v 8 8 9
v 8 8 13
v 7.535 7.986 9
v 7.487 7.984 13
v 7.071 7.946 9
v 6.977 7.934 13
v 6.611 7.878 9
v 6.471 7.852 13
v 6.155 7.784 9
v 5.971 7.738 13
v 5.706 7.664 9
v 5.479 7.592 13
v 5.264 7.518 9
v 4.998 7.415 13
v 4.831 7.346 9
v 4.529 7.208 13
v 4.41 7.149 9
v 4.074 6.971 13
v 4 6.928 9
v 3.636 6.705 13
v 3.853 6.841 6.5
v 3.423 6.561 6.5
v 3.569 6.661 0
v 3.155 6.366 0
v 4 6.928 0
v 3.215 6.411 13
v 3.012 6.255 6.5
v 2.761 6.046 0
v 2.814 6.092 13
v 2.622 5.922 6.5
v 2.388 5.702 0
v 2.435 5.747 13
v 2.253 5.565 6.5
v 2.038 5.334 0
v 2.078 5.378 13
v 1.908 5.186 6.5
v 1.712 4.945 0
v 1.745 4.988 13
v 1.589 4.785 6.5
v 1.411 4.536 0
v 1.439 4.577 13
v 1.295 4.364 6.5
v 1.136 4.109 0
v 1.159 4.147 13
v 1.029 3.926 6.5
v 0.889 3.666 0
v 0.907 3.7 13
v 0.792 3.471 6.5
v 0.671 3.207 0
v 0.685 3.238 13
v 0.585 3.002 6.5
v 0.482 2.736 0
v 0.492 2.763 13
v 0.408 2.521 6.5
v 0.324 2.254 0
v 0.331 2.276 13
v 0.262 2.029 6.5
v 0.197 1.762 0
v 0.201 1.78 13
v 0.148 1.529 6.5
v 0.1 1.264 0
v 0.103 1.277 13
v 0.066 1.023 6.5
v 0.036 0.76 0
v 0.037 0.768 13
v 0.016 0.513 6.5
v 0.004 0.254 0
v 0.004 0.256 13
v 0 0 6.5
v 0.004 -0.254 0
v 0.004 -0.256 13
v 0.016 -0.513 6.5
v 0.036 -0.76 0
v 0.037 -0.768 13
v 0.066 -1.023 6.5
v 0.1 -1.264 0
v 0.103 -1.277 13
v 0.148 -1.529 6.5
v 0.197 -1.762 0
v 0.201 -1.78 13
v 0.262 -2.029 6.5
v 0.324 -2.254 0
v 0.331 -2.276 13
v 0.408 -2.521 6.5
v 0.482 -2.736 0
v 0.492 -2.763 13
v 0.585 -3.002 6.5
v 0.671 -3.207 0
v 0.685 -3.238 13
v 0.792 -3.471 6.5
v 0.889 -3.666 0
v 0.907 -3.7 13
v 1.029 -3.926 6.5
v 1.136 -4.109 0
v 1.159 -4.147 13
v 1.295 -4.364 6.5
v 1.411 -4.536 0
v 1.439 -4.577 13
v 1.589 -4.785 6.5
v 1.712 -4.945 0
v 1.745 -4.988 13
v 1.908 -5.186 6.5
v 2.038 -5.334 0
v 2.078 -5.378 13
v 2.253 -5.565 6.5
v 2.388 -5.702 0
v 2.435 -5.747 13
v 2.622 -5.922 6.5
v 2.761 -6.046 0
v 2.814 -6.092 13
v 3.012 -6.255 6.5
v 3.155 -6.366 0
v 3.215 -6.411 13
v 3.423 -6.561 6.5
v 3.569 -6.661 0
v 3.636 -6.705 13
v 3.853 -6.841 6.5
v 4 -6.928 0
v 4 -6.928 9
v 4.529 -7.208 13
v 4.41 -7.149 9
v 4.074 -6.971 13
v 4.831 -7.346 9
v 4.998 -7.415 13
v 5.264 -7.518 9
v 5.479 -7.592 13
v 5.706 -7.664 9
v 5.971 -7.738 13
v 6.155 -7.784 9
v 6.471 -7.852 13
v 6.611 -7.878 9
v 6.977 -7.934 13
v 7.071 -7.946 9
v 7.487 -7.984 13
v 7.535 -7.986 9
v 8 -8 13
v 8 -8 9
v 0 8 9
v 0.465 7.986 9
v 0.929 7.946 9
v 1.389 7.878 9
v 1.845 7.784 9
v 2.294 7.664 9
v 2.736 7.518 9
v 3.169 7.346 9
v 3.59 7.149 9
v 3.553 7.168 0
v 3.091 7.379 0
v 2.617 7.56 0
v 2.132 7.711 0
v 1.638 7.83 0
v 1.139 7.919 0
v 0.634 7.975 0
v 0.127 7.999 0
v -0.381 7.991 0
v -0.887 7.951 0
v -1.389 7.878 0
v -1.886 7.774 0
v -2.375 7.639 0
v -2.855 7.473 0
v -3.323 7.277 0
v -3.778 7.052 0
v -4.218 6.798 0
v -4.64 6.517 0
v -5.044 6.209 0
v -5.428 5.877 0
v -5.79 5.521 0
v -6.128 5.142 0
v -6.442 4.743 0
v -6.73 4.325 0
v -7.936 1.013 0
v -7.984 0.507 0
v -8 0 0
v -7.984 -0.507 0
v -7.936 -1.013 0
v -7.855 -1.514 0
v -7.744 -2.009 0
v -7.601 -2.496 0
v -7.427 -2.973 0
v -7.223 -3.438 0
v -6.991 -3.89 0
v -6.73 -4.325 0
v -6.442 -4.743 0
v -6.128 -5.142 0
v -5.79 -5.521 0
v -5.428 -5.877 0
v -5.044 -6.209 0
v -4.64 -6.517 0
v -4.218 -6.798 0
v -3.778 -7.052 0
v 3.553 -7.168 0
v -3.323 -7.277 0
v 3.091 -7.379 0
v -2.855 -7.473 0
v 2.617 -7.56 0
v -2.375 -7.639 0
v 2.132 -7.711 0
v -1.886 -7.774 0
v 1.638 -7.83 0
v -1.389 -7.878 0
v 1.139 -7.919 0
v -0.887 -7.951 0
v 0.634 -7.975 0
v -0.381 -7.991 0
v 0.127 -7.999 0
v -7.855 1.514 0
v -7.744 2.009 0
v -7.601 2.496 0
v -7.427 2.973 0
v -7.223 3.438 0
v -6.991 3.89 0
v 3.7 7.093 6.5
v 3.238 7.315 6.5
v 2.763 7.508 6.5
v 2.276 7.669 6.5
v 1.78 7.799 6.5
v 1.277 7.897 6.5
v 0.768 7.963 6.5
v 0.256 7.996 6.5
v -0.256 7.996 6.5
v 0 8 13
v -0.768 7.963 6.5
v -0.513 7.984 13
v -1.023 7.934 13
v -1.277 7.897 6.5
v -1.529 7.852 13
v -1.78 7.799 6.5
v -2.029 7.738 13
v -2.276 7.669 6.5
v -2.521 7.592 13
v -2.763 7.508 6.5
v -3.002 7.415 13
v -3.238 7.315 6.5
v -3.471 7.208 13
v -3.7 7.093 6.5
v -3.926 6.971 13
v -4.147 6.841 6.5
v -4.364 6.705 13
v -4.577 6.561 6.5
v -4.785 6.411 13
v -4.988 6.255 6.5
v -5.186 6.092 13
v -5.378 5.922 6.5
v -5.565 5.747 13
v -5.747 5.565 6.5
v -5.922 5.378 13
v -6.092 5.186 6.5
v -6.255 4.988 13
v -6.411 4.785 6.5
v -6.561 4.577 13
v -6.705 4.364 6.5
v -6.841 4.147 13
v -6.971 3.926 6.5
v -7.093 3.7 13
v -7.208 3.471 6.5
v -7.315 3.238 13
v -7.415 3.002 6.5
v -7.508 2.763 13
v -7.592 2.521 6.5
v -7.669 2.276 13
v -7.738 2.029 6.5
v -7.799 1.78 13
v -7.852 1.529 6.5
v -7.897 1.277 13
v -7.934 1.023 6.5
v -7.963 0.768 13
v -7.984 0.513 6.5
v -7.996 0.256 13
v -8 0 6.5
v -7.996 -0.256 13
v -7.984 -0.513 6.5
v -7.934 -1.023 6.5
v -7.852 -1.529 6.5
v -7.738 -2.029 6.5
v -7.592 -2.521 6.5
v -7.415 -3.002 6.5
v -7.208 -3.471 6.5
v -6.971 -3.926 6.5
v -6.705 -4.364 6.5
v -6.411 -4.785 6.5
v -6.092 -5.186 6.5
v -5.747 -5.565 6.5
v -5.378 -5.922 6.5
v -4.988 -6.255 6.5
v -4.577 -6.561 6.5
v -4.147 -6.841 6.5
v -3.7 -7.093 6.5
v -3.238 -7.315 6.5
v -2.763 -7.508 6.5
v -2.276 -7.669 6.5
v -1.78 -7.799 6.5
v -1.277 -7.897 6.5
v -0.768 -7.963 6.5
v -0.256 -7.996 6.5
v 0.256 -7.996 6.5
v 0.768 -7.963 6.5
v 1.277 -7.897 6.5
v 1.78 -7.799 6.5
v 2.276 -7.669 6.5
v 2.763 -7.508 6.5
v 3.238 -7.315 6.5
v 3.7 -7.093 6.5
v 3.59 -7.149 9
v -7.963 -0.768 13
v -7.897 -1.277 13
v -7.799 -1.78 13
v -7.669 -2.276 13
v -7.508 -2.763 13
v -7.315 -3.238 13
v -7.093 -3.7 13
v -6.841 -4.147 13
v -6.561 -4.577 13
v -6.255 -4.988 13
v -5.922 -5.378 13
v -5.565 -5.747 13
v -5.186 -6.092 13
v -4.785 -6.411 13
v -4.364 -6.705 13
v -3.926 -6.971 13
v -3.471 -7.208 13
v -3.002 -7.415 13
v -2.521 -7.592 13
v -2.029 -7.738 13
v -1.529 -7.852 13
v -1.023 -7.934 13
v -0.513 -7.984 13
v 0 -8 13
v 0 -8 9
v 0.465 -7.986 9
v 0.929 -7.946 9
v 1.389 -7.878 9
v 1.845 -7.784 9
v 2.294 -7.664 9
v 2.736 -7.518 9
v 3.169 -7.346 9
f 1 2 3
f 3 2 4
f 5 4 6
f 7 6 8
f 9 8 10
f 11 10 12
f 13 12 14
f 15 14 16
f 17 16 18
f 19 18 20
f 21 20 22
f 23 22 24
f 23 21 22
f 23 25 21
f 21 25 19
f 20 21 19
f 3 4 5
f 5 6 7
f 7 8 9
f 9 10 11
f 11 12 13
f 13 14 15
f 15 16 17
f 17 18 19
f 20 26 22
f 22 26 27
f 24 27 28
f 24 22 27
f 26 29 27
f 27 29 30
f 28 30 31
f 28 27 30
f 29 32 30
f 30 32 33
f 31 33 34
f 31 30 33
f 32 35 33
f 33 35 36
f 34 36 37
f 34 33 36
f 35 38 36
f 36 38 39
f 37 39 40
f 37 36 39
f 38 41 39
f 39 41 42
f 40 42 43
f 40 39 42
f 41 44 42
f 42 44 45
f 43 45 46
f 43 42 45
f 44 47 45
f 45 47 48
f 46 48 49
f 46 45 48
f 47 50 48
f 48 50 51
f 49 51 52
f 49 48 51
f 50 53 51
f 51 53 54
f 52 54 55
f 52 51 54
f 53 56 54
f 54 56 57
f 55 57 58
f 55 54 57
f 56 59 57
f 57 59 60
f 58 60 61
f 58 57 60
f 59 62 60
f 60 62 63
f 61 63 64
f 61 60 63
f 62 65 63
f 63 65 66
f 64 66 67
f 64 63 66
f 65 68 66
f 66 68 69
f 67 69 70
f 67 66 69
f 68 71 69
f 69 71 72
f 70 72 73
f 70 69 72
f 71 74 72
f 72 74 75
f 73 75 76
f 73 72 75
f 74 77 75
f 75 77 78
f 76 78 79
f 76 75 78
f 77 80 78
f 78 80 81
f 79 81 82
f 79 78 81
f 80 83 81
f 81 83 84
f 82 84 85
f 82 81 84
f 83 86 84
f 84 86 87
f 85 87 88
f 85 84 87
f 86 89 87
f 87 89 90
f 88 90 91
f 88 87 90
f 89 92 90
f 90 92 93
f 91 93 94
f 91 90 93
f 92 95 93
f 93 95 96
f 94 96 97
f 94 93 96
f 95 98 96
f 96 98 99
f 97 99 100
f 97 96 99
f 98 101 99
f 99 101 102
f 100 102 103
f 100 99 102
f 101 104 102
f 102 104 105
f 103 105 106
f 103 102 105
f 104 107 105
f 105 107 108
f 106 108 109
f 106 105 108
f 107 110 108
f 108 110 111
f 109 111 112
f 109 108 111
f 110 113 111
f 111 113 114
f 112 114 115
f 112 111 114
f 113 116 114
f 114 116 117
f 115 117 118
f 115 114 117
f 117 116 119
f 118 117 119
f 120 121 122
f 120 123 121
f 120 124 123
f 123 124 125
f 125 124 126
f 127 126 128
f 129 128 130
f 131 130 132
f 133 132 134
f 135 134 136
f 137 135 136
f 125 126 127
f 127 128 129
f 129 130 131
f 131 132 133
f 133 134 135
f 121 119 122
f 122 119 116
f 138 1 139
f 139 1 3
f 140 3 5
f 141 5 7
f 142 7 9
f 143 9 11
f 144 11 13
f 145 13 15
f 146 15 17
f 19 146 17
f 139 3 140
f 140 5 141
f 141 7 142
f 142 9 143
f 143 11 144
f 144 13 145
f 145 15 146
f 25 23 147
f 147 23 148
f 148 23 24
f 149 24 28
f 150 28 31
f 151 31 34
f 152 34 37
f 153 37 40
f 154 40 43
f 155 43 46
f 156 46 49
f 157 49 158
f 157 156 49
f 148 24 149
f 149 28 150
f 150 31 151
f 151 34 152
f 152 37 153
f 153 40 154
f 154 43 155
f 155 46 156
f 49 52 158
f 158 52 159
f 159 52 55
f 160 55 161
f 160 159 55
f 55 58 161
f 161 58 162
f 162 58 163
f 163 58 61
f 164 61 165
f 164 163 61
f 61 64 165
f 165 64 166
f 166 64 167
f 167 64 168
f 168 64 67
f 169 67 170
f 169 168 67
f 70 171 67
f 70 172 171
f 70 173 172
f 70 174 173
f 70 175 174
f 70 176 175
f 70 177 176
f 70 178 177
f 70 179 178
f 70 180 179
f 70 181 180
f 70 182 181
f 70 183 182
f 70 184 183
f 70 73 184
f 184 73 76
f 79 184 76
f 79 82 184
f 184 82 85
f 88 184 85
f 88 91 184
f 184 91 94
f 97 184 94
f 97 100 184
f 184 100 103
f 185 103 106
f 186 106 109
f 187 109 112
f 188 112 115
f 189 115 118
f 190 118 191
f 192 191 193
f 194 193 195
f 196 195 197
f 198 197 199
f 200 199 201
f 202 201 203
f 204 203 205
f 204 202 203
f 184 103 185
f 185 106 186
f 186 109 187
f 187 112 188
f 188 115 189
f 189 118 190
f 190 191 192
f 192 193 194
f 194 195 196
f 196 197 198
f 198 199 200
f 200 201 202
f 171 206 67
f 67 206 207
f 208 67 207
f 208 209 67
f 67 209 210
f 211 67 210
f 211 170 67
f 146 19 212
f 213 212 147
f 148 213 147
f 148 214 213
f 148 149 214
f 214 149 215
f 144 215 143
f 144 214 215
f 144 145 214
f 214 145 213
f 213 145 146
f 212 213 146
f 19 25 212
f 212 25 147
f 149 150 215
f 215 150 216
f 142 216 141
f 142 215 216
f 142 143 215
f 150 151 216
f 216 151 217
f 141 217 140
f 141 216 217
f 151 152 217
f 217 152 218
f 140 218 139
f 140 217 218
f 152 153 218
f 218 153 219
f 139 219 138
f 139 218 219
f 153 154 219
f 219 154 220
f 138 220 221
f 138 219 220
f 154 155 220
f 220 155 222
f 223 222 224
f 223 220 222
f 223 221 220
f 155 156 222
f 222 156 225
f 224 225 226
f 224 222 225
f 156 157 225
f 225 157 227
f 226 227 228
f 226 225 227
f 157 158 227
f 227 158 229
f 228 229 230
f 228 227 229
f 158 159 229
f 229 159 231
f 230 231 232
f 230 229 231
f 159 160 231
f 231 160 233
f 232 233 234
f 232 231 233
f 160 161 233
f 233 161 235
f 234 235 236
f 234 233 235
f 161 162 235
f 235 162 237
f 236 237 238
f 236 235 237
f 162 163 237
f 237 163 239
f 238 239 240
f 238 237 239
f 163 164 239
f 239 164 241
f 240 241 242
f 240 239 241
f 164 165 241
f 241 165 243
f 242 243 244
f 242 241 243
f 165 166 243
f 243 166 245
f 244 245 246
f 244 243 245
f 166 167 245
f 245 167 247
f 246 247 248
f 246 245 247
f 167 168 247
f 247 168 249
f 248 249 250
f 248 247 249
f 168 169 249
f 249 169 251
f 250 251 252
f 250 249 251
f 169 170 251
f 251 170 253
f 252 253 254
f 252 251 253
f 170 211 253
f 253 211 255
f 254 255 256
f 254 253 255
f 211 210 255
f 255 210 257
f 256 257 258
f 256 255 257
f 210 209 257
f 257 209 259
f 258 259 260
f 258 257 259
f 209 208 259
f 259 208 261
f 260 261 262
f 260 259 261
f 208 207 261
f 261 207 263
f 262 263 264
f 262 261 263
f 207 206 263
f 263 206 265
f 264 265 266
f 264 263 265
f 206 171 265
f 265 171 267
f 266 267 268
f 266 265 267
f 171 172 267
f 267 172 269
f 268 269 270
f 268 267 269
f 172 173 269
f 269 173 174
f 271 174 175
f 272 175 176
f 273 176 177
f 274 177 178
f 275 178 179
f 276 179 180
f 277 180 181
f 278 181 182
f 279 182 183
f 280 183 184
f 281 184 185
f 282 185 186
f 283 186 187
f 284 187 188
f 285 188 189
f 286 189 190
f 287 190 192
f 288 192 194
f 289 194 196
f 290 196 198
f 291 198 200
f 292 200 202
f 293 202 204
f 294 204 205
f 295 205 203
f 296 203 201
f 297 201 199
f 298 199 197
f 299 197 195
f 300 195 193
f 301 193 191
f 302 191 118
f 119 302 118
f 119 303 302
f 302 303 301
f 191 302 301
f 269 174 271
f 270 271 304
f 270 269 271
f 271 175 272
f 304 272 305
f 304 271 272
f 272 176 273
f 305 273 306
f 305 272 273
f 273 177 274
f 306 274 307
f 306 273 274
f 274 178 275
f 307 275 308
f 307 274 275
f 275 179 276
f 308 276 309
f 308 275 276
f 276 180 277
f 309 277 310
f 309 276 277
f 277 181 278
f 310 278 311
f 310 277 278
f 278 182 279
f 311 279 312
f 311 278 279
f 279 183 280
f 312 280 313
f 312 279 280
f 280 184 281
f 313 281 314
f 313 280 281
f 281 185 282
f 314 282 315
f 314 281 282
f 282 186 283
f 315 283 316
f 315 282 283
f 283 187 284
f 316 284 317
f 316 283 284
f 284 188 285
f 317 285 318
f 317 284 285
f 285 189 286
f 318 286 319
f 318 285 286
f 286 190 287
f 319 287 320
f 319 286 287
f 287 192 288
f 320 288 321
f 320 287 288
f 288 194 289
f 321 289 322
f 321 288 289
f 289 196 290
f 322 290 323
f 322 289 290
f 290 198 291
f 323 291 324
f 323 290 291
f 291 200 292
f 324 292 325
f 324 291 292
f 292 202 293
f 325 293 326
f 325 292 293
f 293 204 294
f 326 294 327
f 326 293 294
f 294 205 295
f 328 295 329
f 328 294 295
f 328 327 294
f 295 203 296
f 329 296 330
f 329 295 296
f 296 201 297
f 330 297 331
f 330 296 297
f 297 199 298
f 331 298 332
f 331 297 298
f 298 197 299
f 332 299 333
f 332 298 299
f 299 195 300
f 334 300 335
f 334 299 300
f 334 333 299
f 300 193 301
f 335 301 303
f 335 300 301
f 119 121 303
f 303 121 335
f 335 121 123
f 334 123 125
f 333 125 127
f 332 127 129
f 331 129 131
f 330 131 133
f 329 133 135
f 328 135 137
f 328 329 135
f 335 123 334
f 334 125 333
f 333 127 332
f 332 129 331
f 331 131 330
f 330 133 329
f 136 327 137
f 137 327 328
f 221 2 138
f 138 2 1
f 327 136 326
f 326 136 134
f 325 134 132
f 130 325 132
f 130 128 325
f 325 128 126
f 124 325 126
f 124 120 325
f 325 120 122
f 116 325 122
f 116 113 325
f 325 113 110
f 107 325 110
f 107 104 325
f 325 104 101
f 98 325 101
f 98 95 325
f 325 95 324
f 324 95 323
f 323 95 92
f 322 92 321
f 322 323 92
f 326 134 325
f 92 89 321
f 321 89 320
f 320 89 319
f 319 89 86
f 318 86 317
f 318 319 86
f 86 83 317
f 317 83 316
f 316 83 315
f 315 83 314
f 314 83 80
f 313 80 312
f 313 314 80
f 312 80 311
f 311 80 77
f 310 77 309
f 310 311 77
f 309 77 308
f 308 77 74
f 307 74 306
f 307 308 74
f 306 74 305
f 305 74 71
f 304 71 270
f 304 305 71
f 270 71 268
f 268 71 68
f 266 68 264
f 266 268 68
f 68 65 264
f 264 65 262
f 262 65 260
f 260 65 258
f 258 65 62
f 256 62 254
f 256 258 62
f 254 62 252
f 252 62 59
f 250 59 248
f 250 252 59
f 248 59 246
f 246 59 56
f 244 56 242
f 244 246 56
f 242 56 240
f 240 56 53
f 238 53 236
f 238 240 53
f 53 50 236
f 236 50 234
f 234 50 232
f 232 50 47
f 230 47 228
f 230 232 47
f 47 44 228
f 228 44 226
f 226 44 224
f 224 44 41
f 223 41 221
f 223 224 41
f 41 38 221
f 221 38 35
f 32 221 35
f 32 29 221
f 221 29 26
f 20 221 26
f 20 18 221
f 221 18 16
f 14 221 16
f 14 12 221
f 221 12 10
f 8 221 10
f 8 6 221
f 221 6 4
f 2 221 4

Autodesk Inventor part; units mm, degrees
ref_plane "YZ Plane" through (0, 0, 0) normal (1, 0, 0) x (0, 1, 0)
ref_plane "XZ Plane" through (0, 0, 0) normal (0, 1, 0) x (-1, 0, 0)
ref_plane "XY Plane" through (0, 0, 0) normal (0, 0, 1) x (1, 0, 0)
sketch "Sketch1" plane through (0, 0, 0) normal (0, 0, 1) x (1, 0, 0)
  circle A0 centre (0, 0) radius 8
  circle A1 centre (8, 0) radius 6 construction
  dimension "d0" = 16
  dimension "d1" = 12
extrude "Extrusion1" add sketch "Sketch1" along normal blind 13
sketch "Sketch2" plane through (0, 0, 13) normal (0, 0, 1) x (1, 0, 0)
  circle A0 centre (0, 0) radius 8 projected
  circle A1 centre (8, 0) radius 8 construction
  line L0 (0, 8) -> (8, 8)
  line L1 (8, 8) -> (8, -8)
  line L2 (8, -8) -> (0, -8)
  line L3 (0, -8) -> (0, 8)
extrude "Extrusion2" add sketch "Sketch2" against normal blind 4 contours A0 L3 | L1 L2 A0 | A0 L0 L1 picked at (1.157, 2.4026)
sketch "Sketch3" plane through (0, 0, 13) normal (0, 0, 1) x (1, 0, 0)
  arc A0 (0, 8) -> (0, -8) centre (0, 0) ccw projected
  line L0 (8, 8) -> (8, -8) projected
  circle A1 centre (8, 0) radius 8
extrude "Extrusion3" cut sketch "Sketch3" against normal through all
properties part number "effector plug"
